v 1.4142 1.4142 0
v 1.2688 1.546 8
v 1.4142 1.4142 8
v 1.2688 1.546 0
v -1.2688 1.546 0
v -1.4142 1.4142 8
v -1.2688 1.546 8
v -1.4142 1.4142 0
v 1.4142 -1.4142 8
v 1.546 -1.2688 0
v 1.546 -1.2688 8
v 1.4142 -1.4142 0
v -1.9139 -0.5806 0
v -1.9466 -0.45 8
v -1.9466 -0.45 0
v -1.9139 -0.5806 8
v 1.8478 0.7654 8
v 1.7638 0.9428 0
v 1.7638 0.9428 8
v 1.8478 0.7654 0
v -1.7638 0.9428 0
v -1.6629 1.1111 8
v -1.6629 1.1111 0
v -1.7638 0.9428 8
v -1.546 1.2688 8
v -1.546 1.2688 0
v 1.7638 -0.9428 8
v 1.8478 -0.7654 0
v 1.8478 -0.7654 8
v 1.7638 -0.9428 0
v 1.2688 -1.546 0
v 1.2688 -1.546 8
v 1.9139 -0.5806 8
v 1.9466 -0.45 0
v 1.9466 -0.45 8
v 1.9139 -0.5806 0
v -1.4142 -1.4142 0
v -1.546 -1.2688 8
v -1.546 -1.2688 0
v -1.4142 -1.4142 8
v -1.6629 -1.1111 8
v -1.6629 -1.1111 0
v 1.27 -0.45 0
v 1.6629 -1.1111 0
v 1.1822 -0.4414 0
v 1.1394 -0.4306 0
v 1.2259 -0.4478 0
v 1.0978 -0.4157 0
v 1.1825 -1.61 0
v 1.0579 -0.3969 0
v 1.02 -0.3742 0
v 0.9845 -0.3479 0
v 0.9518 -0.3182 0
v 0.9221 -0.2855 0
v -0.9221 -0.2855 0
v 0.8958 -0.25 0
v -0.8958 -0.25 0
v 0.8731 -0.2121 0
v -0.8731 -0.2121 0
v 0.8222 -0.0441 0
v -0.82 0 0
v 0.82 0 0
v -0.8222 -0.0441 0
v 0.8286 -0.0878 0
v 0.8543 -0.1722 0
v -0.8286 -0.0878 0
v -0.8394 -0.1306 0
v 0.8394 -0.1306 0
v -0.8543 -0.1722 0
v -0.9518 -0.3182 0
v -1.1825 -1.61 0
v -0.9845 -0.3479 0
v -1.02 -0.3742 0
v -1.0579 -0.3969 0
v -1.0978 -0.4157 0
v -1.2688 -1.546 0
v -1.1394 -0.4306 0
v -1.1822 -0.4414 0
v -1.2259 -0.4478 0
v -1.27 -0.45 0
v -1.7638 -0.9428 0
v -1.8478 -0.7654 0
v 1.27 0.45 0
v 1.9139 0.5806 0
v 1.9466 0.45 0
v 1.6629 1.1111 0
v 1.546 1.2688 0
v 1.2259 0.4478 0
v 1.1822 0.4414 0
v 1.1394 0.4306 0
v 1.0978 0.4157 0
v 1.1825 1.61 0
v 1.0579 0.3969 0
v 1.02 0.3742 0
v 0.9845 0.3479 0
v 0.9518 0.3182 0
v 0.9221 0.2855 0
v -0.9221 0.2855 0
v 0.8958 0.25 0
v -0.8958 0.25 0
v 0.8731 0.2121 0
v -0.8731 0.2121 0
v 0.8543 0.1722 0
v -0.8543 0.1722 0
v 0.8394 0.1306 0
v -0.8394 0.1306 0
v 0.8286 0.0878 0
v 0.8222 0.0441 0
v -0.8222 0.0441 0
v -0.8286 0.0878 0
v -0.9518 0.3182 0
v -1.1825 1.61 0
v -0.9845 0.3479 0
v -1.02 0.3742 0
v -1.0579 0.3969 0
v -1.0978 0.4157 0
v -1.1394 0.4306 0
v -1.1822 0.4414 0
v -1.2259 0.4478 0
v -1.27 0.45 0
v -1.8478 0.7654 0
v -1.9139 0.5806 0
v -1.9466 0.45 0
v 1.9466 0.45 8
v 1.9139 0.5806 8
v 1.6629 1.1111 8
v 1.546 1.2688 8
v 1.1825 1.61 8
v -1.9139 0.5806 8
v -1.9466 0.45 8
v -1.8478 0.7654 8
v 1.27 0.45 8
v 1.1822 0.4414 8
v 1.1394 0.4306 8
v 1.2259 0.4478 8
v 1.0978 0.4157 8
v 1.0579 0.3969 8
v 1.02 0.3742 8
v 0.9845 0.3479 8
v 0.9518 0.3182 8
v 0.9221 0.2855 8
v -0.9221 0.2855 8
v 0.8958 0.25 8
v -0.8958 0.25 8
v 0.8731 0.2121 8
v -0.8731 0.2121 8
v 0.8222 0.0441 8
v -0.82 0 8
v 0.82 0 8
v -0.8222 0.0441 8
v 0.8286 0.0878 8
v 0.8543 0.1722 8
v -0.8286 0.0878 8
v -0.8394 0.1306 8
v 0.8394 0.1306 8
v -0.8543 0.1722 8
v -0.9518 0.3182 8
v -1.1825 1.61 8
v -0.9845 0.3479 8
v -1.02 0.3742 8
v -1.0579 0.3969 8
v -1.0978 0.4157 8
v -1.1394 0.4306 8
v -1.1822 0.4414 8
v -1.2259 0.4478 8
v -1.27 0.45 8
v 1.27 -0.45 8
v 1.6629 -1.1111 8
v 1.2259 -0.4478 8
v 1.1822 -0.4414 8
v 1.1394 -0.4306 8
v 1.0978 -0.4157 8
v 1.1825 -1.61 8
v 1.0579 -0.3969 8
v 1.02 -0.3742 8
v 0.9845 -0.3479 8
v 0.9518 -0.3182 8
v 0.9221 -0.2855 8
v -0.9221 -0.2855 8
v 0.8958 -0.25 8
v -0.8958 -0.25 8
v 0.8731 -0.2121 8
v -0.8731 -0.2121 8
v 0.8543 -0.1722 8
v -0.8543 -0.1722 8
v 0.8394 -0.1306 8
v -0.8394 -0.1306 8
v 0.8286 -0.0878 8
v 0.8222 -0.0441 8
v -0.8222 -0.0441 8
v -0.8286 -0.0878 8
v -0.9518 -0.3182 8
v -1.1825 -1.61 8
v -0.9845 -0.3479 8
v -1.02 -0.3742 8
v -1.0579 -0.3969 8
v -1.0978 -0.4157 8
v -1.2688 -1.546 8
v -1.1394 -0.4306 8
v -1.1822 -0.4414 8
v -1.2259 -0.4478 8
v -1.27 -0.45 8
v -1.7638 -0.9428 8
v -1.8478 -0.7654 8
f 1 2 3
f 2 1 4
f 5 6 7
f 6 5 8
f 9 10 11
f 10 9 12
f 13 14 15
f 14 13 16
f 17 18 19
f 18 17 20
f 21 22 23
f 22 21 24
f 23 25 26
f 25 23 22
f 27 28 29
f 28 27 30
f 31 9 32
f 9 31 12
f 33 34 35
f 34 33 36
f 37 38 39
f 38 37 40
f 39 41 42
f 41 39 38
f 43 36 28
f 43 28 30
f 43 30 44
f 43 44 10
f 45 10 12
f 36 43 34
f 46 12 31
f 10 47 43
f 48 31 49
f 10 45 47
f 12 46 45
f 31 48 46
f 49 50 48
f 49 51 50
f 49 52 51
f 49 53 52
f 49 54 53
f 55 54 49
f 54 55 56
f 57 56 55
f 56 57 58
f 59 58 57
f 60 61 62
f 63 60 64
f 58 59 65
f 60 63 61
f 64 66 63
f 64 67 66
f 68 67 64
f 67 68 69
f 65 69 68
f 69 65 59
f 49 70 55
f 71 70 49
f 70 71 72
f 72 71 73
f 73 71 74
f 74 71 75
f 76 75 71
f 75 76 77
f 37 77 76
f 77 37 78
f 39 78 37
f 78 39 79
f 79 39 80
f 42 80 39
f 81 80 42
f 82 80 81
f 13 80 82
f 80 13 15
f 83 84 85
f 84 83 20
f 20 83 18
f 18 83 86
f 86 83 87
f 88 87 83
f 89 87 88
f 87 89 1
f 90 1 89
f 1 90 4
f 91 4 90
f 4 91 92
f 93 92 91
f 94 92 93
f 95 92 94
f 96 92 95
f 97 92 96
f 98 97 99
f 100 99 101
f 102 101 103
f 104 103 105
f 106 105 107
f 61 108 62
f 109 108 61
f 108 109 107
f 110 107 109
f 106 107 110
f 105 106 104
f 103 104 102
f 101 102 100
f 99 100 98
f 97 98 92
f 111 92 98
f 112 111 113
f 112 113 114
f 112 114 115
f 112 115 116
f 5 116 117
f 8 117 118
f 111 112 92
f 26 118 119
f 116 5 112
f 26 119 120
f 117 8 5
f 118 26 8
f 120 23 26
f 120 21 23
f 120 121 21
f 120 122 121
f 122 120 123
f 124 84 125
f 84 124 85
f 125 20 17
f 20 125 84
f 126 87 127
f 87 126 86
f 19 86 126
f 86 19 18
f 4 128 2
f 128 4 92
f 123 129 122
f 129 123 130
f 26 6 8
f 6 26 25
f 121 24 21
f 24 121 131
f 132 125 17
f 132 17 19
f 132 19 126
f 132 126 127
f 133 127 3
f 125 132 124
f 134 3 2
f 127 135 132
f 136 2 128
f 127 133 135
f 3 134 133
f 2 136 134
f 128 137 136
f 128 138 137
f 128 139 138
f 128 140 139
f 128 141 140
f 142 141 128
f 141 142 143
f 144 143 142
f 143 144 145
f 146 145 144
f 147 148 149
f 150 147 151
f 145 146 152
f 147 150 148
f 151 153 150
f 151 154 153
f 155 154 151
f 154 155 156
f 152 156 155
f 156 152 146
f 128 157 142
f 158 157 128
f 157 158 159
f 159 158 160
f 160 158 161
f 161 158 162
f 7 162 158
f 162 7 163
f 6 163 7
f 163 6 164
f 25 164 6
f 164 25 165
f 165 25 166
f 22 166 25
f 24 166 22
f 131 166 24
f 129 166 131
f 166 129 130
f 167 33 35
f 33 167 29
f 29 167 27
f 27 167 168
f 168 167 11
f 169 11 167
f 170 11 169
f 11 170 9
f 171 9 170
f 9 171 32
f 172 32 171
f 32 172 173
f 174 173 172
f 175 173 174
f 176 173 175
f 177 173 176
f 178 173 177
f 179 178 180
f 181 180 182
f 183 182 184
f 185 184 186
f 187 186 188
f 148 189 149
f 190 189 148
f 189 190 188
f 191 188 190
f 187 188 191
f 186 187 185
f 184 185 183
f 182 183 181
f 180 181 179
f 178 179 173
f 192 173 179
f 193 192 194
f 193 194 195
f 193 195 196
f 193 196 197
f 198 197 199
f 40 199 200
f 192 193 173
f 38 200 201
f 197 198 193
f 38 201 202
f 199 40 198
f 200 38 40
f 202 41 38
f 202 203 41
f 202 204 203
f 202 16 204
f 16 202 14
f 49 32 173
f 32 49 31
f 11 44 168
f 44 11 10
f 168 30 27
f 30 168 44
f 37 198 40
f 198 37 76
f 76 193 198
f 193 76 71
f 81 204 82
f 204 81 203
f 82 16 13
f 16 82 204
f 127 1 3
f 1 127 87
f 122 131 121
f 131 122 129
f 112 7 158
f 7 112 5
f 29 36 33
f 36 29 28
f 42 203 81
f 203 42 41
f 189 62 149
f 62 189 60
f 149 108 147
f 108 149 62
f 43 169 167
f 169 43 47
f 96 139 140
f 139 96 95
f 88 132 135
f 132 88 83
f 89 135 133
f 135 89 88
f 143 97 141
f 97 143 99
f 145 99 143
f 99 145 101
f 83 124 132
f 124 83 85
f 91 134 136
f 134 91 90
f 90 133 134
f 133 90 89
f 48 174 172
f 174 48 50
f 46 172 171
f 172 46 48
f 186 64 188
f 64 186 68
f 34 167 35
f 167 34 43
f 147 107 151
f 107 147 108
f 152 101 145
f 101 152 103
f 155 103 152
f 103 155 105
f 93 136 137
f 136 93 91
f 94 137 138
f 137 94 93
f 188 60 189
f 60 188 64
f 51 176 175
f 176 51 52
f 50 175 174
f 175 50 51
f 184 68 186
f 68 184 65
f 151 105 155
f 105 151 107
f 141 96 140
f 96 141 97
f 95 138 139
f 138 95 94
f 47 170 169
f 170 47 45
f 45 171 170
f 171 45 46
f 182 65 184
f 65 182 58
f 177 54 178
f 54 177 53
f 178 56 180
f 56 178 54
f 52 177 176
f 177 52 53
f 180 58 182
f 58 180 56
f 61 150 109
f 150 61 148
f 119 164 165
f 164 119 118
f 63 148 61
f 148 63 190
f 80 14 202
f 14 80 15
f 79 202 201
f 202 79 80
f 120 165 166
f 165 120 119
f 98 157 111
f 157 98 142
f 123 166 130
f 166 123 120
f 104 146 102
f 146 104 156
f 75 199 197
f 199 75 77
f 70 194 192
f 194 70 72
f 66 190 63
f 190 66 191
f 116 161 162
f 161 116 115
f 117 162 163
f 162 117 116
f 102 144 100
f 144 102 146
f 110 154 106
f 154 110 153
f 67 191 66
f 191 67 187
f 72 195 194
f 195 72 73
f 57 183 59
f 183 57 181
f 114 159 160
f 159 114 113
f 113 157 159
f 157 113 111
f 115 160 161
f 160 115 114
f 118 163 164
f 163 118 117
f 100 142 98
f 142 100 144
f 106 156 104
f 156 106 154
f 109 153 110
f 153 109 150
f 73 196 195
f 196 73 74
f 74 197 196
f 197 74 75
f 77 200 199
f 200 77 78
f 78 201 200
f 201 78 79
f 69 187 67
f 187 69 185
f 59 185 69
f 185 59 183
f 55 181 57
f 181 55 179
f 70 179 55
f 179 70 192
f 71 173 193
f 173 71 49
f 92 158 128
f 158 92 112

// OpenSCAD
// LED PCB standoff
$fn=64;

eps1 = 0.01;
eps2 = eps1 + eps1;

// Outer diamter.
outer_diameter = 4.0;

// Total height.
height = 8.0;

// Spacing betwene the centers of the two leads.
leads_spacing = 2.54;

// The diamter of the lead holes.
leads_hole_diameter = 0.9;

// 0 for a closed hole. 1 for an open slot.
use_open_slot = 1;

// Values below 1.0 reduces the footprint of the standoff at the 
// cost of reduces stability.
width_factor = 0.8;

module lead_hole() {
  module hole(offset) {
     translate([offset, 0, -eps1])
        cylinder(d=leads_hole_diameter, h=height+eps2);   
  }
  
  if (use_open_slot == 0) {
    hole(leads_spacing/2);
  } else {
    hull() {
      hole(leads_spacing/2);
      hole(outer_diameter);
    }
  }
}

module round_led_standoff() {
  difference() {
    cylinder(d=outer_diameter, h=height);
    lead_hole();
    mirror([1, 0, 0]) lead_hole();
  }
}

module led_standoff() {
  dx = outer_diameter + eps2;
  dy = (width_factor * outer_diameter) + eps2;
  dz = height + eps2;
  intersection() {
    round_led_standoff();
    translate([-dx/2, -dy/2, -eps1])
      cube([dx, dy, dz]); 
  } 
}

led_standoff();
